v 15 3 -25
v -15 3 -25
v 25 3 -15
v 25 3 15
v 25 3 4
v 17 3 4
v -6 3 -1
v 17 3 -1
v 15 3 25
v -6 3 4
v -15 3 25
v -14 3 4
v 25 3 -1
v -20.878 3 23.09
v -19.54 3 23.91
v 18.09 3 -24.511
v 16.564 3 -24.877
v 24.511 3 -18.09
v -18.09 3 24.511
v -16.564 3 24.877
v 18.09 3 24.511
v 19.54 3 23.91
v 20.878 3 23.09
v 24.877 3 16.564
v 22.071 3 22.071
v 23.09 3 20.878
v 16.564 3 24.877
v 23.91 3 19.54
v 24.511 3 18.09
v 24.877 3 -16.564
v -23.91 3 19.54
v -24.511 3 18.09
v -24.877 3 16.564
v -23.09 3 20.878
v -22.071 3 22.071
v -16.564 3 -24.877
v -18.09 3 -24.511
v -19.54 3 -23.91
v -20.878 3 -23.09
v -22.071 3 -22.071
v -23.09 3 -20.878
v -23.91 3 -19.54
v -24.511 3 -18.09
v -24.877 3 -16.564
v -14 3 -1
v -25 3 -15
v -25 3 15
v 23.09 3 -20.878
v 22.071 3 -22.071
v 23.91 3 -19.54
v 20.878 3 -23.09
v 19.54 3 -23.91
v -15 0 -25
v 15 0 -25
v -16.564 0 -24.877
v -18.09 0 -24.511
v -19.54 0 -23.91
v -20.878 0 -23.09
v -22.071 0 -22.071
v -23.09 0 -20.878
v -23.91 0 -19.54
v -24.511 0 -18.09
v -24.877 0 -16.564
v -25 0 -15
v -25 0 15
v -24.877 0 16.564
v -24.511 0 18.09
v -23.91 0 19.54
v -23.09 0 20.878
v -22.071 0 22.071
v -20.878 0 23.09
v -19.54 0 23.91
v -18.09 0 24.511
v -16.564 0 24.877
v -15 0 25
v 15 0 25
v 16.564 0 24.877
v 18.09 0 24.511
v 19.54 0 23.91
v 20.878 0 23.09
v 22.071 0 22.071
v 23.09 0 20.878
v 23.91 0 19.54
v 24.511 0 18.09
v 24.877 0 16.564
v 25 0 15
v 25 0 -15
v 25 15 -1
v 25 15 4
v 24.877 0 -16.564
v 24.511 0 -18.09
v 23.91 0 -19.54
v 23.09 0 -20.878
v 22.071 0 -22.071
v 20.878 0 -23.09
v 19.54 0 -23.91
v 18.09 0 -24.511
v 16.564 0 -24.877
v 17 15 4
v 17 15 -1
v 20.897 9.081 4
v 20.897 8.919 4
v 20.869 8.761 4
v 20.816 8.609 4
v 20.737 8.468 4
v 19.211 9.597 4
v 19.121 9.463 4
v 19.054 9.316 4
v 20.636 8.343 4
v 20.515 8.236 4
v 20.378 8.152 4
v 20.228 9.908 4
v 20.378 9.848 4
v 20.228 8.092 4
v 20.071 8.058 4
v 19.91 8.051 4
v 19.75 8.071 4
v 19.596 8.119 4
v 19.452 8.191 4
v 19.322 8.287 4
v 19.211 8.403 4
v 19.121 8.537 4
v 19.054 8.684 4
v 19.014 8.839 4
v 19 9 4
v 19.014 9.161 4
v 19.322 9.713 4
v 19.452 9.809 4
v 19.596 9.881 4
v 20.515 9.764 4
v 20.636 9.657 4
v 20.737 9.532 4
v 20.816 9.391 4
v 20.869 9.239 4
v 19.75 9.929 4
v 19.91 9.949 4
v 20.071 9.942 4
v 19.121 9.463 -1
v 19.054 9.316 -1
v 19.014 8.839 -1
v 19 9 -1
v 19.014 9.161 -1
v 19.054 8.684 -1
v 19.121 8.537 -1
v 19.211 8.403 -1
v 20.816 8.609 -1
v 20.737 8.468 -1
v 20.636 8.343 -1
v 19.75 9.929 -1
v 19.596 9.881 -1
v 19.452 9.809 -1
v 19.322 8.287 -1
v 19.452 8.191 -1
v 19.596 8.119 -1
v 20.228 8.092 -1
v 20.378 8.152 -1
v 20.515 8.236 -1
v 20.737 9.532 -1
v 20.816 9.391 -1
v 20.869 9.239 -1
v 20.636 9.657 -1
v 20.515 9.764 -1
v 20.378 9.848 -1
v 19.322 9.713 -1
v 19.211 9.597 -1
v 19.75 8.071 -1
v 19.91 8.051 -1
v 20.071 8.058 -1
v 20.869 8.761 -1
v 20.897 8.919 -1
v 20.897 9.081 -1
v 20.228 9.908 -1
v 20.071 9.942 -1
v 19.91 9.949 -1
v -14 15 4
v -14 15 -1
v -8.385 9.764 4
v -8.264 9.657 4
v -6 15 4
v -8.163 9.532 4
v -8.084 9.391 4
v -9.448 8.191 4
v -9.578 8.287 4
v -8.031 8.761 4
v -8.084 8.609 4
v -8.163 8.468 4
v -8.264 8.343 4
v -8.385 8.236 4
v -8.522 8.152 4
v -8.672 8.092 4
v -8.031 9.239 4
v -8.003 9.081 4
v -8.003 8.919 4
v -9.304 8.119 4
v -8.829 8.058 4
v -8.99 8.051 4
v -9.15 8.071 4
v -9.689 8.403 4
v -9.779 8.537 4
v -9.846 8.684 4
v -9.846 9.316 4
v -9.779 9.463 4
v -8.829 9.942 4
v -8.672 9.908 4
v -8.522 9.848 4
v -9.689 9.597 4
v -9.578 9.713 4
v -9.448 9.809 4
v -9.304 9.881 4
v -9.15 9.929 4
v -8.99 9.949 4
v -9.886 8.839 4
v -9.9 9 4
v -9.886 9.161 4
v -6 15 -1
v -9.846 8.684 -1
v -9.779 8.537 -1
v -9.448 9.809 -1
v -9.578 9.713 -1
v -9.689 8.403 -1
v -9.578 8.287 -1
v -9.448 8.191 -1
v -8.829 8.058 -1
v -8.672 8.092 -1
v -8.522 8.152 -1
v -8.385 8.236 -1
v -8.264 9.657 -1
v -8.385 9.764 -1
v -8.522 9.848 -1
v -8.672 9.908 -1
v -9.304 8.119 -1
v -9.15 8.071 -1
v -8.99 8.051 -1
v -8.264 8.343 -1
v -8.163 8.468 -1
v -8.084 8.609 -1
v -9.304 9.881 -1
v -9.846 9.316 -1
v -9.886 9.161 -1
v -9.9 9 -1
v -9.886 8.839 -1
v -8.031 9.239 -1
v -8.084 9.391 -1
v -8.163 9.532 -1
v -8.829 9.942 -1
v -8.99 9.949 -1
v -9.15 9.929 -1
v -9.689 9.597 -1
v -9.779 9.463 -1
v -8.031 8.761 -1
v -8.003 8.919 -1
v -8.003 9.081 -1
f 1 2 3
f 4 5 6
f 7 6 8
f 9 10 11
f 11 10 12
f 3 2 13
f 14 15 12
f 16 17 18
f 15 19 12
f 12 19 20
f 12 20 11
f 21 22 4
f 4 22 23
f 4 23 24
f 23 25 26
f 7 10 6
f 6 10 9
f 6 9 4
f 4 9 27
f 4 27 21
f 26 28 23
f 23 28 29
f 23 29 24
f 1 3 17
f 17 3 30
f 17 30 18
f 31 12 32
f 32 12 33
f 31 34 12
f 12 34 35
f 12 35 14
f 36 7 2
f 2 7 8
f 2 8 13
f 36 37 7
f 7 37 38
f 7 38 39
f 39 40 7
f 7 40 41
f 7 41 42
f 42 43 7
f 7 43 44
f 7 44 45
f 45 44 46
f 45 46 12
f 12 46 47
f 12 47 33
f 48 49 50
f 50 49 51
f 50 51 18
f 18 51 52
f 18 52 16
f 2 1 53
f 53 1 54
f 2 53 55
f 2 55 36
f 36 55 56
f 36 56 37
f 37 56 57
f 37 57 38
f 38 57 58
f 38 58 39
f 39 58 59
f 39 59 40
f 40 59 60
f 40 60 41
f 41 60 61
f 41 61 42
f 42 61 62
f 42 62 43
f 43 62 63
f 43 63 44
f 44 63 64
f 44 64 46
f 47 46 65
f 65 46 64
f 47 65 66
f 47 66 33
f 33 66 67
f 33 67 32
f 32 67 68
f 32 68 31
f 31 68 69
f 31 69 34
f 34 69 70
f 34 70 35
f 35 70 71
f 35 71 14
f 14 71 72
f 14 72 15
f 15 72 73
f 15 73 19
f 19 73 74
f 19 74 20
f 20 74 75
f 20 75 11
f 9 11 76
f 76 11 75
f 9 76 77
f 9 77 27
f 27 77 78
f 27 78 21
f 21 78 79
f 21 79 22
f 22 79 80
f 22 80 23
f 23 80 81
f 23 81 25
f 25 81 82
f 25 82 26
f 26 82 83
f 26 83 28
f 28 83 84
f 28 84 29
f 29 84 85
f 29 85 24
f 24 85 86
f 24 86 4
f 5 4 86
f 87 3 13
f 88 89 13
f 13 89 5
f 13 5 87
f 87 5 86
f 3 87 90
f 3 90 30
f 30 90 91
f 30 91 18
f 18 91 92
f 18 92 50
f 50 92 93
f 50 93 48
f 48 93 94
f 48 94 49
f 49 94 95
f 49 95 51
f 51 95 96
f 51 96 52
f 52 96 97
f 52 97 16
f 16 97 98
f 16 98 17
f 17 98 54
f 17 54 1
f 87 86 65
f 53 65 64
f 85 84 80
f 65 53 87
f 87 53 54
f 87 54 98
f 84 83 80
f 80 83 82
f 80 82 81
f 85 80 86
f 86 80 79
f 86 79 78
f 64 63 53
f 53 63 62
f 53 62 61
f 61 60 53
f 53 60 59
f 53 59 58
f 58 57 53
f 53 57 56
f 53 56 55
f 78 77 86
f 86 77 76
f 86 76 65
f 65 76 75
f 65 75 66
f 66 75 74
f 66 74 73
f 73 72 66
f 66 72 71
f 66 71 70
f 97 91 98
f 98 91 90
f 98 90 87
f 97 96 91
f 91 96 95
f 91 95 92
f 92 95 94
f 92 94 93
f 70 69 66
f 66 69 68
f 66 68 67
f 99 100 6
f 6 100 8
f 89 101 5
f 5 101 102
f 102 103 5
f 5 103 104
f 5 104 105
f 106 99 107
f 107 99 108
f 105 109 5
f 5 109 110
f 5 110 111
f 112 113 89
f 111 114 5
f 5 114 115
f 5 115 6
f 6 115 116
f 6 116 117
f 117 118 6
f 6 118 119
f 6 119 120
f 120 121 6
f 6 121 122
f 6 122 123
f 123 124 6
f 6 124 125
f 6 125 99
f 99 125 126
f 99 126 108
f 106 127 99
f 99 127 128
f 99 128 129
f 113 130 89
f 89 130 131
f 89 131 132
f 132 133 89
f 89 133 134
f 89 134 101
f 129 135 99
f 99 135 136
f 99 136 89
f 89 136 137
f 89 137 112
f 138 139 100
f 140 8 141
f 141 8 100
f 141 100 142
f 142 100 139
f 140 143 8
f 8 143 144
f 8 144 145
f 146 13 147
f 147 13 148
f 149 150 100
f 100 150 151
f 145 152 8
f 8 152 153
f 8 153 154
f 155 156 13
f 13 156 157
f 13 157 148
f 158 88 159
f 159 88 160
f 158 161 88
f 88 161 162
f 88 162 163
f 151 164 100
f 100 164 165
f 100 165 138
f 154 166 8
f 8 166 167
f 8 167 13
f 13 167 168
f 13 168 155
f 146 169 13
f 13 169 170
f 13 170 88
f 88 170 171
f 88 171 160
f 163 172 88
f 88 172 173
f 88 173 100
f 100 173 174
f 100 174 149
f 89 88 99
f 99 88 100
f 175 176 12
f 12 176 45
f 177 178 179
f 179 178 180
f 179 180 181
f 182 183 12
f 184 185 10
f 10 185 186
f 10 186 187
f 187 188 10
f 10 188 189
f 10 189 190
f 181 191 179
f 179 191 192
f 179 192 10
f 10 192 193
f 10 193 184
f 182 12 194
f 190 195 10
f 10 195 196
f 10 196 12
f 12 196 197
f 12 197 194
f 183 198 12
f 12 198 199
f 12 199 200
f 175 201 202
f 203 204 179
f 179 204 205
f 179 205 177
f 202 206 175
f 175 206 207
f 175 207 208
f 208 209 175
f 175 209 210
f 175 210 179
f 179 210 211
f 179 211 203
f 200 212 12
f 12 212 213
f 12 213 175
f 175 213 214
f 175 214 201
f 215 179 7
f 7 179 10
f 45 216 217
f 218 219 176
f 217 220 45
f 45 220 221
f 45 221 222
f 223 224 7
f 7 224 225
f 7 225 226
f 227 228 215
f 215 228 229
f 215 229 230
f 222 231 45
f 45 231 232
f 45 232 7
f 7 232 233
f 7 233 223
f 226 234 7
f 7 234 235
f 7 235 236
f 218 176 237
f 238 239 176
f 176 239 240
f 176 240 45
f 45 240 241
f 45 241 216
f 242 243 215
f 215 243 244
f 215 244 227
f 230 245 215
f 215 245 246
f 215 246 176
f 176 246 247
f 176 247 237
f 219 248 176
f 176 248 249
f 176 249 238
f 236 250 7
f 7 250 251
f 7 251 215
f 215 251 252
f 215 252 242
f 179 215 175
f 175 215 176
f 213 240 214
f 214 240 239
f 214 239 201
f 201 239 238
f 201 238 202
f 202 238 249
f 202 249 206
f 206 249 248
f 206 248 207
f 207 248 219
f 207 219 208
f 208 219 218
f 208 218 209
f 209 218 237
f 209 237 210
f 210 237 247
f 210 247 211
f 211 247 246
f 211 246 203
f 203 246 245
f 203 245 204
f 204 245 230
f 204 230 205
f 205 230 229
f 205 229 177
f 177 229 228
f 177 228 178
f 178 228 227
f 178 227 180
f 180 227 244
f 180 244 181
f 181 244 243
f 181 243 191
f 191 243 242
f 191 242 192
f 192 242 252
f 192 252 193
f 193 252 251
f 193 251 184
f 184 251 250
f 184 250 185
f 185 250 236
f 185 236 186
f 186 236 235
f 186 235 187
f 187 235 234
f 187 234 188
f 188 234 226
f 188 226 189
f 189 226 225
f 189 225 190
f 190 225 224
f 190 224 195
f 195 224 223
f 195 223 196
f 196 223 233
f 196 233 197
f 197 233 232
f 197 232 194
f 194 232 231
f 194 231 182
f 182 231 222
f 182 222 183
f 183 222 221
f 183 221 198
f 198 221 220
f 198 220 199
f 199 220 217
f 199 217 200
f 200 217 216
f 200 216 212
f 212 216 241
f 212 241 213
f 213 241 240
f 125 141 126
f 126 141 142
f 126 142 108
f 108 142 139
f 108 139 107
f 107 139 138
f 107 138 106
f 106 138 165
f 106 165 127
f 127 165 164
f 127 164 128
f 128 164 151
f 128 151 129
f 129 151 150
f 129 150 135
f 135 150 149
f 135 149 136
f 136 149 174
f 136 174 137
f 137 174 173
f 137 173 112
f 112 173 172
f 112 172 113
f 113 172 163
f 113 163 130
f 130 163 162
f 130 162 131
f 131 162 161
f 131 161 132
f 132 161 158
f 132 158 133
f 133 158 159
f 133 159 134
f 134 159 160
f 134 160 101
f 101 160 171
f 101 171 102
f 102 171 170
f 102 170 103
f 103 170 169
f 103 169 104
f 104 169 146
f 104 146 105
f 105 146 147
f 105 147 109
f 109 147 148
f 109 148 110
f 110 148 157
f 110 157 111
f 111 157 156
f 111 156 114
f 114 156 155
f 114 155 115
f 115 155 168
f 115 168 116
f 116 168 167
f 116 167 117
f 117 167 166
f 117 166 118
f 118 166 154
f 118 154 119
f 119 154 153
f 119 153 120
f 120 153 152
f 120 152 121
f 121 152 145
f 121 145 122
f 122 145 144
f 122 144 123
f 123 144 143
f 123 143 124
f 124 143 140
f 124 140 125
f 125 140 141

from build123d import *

# Parameters (mm, degrees)
EXTRUDE_1_DEPTH     = 3
SKETCH_2_W          = 8
SKETCH_2_H          = 5
EXTRUDE_2_DEPTH     = 15
SKETCH_3_R          = 0.95
CUT_EXTRUDE_1_DEPTH = 15


with BuildPart() as part:
    # 草图1 → 凸台-拉伸1 (new body)
    with BuildSketch(Plane(origin=(0, 0, 0), x_dir=(1, 0, 0), z_dir=(0, 1, 0))):
        with BuildLine():
            Line((-15, 25), (15, 25))
            ThreePointArc((15, 25), (22.071067812, 22.071067812), (25, 15))
            Line((25, 15), (25, -15))
            ThreePointArc((25, -15), (22.071067812, -22.071067812), (15, -25))
            Line((15, -25), (-15, -25))
            ThreePointArc((-15, -25), (-22.071067812, -22.071067812), (-25, -15))
            Line((-25, -15), (-25, 15))
            ThreePointArc((-25, 15), (-22.071067812, 22.071067812), (-15, 25))
        make_face()
    extrude(amount=EXTRUDE_1_DEPTH)

    # 草图2 → 凸台-拉伸2 (add)
    with BuildSketch(Plane(origin=(0, 0, 0), x_dir=(1, 0, 0), z_dir=(0, 1, 0))):
        with Locations((21, -1.5)):
            Rectangle(SKETCH_2_W, SKETCH_2_H)
        with Locations((-10, -1.5)):
            Rectangle(SKETCH_2_W, SKETCH_2_H)
    extrude(amount=EXTRUDE_2_DEPTH)

    # 草图3 → 切除-拉伸1 (cut)
    with BuildSketch(Plane(origin=(0, 0, -1), x_dir=(-1, 0, 0), z_dir=(0, 0, -1))):
        with Locations((8.95, 9)):
            Circle(SKETCH_3_R)
        with Locations((-19.95, 9)):
            Circle(SKETCH_3_R)
    extrude(amount=-CUT_EXTRUDE_1_DEPTH, mode=Mode.SUBTRACT)


solid = part.part
